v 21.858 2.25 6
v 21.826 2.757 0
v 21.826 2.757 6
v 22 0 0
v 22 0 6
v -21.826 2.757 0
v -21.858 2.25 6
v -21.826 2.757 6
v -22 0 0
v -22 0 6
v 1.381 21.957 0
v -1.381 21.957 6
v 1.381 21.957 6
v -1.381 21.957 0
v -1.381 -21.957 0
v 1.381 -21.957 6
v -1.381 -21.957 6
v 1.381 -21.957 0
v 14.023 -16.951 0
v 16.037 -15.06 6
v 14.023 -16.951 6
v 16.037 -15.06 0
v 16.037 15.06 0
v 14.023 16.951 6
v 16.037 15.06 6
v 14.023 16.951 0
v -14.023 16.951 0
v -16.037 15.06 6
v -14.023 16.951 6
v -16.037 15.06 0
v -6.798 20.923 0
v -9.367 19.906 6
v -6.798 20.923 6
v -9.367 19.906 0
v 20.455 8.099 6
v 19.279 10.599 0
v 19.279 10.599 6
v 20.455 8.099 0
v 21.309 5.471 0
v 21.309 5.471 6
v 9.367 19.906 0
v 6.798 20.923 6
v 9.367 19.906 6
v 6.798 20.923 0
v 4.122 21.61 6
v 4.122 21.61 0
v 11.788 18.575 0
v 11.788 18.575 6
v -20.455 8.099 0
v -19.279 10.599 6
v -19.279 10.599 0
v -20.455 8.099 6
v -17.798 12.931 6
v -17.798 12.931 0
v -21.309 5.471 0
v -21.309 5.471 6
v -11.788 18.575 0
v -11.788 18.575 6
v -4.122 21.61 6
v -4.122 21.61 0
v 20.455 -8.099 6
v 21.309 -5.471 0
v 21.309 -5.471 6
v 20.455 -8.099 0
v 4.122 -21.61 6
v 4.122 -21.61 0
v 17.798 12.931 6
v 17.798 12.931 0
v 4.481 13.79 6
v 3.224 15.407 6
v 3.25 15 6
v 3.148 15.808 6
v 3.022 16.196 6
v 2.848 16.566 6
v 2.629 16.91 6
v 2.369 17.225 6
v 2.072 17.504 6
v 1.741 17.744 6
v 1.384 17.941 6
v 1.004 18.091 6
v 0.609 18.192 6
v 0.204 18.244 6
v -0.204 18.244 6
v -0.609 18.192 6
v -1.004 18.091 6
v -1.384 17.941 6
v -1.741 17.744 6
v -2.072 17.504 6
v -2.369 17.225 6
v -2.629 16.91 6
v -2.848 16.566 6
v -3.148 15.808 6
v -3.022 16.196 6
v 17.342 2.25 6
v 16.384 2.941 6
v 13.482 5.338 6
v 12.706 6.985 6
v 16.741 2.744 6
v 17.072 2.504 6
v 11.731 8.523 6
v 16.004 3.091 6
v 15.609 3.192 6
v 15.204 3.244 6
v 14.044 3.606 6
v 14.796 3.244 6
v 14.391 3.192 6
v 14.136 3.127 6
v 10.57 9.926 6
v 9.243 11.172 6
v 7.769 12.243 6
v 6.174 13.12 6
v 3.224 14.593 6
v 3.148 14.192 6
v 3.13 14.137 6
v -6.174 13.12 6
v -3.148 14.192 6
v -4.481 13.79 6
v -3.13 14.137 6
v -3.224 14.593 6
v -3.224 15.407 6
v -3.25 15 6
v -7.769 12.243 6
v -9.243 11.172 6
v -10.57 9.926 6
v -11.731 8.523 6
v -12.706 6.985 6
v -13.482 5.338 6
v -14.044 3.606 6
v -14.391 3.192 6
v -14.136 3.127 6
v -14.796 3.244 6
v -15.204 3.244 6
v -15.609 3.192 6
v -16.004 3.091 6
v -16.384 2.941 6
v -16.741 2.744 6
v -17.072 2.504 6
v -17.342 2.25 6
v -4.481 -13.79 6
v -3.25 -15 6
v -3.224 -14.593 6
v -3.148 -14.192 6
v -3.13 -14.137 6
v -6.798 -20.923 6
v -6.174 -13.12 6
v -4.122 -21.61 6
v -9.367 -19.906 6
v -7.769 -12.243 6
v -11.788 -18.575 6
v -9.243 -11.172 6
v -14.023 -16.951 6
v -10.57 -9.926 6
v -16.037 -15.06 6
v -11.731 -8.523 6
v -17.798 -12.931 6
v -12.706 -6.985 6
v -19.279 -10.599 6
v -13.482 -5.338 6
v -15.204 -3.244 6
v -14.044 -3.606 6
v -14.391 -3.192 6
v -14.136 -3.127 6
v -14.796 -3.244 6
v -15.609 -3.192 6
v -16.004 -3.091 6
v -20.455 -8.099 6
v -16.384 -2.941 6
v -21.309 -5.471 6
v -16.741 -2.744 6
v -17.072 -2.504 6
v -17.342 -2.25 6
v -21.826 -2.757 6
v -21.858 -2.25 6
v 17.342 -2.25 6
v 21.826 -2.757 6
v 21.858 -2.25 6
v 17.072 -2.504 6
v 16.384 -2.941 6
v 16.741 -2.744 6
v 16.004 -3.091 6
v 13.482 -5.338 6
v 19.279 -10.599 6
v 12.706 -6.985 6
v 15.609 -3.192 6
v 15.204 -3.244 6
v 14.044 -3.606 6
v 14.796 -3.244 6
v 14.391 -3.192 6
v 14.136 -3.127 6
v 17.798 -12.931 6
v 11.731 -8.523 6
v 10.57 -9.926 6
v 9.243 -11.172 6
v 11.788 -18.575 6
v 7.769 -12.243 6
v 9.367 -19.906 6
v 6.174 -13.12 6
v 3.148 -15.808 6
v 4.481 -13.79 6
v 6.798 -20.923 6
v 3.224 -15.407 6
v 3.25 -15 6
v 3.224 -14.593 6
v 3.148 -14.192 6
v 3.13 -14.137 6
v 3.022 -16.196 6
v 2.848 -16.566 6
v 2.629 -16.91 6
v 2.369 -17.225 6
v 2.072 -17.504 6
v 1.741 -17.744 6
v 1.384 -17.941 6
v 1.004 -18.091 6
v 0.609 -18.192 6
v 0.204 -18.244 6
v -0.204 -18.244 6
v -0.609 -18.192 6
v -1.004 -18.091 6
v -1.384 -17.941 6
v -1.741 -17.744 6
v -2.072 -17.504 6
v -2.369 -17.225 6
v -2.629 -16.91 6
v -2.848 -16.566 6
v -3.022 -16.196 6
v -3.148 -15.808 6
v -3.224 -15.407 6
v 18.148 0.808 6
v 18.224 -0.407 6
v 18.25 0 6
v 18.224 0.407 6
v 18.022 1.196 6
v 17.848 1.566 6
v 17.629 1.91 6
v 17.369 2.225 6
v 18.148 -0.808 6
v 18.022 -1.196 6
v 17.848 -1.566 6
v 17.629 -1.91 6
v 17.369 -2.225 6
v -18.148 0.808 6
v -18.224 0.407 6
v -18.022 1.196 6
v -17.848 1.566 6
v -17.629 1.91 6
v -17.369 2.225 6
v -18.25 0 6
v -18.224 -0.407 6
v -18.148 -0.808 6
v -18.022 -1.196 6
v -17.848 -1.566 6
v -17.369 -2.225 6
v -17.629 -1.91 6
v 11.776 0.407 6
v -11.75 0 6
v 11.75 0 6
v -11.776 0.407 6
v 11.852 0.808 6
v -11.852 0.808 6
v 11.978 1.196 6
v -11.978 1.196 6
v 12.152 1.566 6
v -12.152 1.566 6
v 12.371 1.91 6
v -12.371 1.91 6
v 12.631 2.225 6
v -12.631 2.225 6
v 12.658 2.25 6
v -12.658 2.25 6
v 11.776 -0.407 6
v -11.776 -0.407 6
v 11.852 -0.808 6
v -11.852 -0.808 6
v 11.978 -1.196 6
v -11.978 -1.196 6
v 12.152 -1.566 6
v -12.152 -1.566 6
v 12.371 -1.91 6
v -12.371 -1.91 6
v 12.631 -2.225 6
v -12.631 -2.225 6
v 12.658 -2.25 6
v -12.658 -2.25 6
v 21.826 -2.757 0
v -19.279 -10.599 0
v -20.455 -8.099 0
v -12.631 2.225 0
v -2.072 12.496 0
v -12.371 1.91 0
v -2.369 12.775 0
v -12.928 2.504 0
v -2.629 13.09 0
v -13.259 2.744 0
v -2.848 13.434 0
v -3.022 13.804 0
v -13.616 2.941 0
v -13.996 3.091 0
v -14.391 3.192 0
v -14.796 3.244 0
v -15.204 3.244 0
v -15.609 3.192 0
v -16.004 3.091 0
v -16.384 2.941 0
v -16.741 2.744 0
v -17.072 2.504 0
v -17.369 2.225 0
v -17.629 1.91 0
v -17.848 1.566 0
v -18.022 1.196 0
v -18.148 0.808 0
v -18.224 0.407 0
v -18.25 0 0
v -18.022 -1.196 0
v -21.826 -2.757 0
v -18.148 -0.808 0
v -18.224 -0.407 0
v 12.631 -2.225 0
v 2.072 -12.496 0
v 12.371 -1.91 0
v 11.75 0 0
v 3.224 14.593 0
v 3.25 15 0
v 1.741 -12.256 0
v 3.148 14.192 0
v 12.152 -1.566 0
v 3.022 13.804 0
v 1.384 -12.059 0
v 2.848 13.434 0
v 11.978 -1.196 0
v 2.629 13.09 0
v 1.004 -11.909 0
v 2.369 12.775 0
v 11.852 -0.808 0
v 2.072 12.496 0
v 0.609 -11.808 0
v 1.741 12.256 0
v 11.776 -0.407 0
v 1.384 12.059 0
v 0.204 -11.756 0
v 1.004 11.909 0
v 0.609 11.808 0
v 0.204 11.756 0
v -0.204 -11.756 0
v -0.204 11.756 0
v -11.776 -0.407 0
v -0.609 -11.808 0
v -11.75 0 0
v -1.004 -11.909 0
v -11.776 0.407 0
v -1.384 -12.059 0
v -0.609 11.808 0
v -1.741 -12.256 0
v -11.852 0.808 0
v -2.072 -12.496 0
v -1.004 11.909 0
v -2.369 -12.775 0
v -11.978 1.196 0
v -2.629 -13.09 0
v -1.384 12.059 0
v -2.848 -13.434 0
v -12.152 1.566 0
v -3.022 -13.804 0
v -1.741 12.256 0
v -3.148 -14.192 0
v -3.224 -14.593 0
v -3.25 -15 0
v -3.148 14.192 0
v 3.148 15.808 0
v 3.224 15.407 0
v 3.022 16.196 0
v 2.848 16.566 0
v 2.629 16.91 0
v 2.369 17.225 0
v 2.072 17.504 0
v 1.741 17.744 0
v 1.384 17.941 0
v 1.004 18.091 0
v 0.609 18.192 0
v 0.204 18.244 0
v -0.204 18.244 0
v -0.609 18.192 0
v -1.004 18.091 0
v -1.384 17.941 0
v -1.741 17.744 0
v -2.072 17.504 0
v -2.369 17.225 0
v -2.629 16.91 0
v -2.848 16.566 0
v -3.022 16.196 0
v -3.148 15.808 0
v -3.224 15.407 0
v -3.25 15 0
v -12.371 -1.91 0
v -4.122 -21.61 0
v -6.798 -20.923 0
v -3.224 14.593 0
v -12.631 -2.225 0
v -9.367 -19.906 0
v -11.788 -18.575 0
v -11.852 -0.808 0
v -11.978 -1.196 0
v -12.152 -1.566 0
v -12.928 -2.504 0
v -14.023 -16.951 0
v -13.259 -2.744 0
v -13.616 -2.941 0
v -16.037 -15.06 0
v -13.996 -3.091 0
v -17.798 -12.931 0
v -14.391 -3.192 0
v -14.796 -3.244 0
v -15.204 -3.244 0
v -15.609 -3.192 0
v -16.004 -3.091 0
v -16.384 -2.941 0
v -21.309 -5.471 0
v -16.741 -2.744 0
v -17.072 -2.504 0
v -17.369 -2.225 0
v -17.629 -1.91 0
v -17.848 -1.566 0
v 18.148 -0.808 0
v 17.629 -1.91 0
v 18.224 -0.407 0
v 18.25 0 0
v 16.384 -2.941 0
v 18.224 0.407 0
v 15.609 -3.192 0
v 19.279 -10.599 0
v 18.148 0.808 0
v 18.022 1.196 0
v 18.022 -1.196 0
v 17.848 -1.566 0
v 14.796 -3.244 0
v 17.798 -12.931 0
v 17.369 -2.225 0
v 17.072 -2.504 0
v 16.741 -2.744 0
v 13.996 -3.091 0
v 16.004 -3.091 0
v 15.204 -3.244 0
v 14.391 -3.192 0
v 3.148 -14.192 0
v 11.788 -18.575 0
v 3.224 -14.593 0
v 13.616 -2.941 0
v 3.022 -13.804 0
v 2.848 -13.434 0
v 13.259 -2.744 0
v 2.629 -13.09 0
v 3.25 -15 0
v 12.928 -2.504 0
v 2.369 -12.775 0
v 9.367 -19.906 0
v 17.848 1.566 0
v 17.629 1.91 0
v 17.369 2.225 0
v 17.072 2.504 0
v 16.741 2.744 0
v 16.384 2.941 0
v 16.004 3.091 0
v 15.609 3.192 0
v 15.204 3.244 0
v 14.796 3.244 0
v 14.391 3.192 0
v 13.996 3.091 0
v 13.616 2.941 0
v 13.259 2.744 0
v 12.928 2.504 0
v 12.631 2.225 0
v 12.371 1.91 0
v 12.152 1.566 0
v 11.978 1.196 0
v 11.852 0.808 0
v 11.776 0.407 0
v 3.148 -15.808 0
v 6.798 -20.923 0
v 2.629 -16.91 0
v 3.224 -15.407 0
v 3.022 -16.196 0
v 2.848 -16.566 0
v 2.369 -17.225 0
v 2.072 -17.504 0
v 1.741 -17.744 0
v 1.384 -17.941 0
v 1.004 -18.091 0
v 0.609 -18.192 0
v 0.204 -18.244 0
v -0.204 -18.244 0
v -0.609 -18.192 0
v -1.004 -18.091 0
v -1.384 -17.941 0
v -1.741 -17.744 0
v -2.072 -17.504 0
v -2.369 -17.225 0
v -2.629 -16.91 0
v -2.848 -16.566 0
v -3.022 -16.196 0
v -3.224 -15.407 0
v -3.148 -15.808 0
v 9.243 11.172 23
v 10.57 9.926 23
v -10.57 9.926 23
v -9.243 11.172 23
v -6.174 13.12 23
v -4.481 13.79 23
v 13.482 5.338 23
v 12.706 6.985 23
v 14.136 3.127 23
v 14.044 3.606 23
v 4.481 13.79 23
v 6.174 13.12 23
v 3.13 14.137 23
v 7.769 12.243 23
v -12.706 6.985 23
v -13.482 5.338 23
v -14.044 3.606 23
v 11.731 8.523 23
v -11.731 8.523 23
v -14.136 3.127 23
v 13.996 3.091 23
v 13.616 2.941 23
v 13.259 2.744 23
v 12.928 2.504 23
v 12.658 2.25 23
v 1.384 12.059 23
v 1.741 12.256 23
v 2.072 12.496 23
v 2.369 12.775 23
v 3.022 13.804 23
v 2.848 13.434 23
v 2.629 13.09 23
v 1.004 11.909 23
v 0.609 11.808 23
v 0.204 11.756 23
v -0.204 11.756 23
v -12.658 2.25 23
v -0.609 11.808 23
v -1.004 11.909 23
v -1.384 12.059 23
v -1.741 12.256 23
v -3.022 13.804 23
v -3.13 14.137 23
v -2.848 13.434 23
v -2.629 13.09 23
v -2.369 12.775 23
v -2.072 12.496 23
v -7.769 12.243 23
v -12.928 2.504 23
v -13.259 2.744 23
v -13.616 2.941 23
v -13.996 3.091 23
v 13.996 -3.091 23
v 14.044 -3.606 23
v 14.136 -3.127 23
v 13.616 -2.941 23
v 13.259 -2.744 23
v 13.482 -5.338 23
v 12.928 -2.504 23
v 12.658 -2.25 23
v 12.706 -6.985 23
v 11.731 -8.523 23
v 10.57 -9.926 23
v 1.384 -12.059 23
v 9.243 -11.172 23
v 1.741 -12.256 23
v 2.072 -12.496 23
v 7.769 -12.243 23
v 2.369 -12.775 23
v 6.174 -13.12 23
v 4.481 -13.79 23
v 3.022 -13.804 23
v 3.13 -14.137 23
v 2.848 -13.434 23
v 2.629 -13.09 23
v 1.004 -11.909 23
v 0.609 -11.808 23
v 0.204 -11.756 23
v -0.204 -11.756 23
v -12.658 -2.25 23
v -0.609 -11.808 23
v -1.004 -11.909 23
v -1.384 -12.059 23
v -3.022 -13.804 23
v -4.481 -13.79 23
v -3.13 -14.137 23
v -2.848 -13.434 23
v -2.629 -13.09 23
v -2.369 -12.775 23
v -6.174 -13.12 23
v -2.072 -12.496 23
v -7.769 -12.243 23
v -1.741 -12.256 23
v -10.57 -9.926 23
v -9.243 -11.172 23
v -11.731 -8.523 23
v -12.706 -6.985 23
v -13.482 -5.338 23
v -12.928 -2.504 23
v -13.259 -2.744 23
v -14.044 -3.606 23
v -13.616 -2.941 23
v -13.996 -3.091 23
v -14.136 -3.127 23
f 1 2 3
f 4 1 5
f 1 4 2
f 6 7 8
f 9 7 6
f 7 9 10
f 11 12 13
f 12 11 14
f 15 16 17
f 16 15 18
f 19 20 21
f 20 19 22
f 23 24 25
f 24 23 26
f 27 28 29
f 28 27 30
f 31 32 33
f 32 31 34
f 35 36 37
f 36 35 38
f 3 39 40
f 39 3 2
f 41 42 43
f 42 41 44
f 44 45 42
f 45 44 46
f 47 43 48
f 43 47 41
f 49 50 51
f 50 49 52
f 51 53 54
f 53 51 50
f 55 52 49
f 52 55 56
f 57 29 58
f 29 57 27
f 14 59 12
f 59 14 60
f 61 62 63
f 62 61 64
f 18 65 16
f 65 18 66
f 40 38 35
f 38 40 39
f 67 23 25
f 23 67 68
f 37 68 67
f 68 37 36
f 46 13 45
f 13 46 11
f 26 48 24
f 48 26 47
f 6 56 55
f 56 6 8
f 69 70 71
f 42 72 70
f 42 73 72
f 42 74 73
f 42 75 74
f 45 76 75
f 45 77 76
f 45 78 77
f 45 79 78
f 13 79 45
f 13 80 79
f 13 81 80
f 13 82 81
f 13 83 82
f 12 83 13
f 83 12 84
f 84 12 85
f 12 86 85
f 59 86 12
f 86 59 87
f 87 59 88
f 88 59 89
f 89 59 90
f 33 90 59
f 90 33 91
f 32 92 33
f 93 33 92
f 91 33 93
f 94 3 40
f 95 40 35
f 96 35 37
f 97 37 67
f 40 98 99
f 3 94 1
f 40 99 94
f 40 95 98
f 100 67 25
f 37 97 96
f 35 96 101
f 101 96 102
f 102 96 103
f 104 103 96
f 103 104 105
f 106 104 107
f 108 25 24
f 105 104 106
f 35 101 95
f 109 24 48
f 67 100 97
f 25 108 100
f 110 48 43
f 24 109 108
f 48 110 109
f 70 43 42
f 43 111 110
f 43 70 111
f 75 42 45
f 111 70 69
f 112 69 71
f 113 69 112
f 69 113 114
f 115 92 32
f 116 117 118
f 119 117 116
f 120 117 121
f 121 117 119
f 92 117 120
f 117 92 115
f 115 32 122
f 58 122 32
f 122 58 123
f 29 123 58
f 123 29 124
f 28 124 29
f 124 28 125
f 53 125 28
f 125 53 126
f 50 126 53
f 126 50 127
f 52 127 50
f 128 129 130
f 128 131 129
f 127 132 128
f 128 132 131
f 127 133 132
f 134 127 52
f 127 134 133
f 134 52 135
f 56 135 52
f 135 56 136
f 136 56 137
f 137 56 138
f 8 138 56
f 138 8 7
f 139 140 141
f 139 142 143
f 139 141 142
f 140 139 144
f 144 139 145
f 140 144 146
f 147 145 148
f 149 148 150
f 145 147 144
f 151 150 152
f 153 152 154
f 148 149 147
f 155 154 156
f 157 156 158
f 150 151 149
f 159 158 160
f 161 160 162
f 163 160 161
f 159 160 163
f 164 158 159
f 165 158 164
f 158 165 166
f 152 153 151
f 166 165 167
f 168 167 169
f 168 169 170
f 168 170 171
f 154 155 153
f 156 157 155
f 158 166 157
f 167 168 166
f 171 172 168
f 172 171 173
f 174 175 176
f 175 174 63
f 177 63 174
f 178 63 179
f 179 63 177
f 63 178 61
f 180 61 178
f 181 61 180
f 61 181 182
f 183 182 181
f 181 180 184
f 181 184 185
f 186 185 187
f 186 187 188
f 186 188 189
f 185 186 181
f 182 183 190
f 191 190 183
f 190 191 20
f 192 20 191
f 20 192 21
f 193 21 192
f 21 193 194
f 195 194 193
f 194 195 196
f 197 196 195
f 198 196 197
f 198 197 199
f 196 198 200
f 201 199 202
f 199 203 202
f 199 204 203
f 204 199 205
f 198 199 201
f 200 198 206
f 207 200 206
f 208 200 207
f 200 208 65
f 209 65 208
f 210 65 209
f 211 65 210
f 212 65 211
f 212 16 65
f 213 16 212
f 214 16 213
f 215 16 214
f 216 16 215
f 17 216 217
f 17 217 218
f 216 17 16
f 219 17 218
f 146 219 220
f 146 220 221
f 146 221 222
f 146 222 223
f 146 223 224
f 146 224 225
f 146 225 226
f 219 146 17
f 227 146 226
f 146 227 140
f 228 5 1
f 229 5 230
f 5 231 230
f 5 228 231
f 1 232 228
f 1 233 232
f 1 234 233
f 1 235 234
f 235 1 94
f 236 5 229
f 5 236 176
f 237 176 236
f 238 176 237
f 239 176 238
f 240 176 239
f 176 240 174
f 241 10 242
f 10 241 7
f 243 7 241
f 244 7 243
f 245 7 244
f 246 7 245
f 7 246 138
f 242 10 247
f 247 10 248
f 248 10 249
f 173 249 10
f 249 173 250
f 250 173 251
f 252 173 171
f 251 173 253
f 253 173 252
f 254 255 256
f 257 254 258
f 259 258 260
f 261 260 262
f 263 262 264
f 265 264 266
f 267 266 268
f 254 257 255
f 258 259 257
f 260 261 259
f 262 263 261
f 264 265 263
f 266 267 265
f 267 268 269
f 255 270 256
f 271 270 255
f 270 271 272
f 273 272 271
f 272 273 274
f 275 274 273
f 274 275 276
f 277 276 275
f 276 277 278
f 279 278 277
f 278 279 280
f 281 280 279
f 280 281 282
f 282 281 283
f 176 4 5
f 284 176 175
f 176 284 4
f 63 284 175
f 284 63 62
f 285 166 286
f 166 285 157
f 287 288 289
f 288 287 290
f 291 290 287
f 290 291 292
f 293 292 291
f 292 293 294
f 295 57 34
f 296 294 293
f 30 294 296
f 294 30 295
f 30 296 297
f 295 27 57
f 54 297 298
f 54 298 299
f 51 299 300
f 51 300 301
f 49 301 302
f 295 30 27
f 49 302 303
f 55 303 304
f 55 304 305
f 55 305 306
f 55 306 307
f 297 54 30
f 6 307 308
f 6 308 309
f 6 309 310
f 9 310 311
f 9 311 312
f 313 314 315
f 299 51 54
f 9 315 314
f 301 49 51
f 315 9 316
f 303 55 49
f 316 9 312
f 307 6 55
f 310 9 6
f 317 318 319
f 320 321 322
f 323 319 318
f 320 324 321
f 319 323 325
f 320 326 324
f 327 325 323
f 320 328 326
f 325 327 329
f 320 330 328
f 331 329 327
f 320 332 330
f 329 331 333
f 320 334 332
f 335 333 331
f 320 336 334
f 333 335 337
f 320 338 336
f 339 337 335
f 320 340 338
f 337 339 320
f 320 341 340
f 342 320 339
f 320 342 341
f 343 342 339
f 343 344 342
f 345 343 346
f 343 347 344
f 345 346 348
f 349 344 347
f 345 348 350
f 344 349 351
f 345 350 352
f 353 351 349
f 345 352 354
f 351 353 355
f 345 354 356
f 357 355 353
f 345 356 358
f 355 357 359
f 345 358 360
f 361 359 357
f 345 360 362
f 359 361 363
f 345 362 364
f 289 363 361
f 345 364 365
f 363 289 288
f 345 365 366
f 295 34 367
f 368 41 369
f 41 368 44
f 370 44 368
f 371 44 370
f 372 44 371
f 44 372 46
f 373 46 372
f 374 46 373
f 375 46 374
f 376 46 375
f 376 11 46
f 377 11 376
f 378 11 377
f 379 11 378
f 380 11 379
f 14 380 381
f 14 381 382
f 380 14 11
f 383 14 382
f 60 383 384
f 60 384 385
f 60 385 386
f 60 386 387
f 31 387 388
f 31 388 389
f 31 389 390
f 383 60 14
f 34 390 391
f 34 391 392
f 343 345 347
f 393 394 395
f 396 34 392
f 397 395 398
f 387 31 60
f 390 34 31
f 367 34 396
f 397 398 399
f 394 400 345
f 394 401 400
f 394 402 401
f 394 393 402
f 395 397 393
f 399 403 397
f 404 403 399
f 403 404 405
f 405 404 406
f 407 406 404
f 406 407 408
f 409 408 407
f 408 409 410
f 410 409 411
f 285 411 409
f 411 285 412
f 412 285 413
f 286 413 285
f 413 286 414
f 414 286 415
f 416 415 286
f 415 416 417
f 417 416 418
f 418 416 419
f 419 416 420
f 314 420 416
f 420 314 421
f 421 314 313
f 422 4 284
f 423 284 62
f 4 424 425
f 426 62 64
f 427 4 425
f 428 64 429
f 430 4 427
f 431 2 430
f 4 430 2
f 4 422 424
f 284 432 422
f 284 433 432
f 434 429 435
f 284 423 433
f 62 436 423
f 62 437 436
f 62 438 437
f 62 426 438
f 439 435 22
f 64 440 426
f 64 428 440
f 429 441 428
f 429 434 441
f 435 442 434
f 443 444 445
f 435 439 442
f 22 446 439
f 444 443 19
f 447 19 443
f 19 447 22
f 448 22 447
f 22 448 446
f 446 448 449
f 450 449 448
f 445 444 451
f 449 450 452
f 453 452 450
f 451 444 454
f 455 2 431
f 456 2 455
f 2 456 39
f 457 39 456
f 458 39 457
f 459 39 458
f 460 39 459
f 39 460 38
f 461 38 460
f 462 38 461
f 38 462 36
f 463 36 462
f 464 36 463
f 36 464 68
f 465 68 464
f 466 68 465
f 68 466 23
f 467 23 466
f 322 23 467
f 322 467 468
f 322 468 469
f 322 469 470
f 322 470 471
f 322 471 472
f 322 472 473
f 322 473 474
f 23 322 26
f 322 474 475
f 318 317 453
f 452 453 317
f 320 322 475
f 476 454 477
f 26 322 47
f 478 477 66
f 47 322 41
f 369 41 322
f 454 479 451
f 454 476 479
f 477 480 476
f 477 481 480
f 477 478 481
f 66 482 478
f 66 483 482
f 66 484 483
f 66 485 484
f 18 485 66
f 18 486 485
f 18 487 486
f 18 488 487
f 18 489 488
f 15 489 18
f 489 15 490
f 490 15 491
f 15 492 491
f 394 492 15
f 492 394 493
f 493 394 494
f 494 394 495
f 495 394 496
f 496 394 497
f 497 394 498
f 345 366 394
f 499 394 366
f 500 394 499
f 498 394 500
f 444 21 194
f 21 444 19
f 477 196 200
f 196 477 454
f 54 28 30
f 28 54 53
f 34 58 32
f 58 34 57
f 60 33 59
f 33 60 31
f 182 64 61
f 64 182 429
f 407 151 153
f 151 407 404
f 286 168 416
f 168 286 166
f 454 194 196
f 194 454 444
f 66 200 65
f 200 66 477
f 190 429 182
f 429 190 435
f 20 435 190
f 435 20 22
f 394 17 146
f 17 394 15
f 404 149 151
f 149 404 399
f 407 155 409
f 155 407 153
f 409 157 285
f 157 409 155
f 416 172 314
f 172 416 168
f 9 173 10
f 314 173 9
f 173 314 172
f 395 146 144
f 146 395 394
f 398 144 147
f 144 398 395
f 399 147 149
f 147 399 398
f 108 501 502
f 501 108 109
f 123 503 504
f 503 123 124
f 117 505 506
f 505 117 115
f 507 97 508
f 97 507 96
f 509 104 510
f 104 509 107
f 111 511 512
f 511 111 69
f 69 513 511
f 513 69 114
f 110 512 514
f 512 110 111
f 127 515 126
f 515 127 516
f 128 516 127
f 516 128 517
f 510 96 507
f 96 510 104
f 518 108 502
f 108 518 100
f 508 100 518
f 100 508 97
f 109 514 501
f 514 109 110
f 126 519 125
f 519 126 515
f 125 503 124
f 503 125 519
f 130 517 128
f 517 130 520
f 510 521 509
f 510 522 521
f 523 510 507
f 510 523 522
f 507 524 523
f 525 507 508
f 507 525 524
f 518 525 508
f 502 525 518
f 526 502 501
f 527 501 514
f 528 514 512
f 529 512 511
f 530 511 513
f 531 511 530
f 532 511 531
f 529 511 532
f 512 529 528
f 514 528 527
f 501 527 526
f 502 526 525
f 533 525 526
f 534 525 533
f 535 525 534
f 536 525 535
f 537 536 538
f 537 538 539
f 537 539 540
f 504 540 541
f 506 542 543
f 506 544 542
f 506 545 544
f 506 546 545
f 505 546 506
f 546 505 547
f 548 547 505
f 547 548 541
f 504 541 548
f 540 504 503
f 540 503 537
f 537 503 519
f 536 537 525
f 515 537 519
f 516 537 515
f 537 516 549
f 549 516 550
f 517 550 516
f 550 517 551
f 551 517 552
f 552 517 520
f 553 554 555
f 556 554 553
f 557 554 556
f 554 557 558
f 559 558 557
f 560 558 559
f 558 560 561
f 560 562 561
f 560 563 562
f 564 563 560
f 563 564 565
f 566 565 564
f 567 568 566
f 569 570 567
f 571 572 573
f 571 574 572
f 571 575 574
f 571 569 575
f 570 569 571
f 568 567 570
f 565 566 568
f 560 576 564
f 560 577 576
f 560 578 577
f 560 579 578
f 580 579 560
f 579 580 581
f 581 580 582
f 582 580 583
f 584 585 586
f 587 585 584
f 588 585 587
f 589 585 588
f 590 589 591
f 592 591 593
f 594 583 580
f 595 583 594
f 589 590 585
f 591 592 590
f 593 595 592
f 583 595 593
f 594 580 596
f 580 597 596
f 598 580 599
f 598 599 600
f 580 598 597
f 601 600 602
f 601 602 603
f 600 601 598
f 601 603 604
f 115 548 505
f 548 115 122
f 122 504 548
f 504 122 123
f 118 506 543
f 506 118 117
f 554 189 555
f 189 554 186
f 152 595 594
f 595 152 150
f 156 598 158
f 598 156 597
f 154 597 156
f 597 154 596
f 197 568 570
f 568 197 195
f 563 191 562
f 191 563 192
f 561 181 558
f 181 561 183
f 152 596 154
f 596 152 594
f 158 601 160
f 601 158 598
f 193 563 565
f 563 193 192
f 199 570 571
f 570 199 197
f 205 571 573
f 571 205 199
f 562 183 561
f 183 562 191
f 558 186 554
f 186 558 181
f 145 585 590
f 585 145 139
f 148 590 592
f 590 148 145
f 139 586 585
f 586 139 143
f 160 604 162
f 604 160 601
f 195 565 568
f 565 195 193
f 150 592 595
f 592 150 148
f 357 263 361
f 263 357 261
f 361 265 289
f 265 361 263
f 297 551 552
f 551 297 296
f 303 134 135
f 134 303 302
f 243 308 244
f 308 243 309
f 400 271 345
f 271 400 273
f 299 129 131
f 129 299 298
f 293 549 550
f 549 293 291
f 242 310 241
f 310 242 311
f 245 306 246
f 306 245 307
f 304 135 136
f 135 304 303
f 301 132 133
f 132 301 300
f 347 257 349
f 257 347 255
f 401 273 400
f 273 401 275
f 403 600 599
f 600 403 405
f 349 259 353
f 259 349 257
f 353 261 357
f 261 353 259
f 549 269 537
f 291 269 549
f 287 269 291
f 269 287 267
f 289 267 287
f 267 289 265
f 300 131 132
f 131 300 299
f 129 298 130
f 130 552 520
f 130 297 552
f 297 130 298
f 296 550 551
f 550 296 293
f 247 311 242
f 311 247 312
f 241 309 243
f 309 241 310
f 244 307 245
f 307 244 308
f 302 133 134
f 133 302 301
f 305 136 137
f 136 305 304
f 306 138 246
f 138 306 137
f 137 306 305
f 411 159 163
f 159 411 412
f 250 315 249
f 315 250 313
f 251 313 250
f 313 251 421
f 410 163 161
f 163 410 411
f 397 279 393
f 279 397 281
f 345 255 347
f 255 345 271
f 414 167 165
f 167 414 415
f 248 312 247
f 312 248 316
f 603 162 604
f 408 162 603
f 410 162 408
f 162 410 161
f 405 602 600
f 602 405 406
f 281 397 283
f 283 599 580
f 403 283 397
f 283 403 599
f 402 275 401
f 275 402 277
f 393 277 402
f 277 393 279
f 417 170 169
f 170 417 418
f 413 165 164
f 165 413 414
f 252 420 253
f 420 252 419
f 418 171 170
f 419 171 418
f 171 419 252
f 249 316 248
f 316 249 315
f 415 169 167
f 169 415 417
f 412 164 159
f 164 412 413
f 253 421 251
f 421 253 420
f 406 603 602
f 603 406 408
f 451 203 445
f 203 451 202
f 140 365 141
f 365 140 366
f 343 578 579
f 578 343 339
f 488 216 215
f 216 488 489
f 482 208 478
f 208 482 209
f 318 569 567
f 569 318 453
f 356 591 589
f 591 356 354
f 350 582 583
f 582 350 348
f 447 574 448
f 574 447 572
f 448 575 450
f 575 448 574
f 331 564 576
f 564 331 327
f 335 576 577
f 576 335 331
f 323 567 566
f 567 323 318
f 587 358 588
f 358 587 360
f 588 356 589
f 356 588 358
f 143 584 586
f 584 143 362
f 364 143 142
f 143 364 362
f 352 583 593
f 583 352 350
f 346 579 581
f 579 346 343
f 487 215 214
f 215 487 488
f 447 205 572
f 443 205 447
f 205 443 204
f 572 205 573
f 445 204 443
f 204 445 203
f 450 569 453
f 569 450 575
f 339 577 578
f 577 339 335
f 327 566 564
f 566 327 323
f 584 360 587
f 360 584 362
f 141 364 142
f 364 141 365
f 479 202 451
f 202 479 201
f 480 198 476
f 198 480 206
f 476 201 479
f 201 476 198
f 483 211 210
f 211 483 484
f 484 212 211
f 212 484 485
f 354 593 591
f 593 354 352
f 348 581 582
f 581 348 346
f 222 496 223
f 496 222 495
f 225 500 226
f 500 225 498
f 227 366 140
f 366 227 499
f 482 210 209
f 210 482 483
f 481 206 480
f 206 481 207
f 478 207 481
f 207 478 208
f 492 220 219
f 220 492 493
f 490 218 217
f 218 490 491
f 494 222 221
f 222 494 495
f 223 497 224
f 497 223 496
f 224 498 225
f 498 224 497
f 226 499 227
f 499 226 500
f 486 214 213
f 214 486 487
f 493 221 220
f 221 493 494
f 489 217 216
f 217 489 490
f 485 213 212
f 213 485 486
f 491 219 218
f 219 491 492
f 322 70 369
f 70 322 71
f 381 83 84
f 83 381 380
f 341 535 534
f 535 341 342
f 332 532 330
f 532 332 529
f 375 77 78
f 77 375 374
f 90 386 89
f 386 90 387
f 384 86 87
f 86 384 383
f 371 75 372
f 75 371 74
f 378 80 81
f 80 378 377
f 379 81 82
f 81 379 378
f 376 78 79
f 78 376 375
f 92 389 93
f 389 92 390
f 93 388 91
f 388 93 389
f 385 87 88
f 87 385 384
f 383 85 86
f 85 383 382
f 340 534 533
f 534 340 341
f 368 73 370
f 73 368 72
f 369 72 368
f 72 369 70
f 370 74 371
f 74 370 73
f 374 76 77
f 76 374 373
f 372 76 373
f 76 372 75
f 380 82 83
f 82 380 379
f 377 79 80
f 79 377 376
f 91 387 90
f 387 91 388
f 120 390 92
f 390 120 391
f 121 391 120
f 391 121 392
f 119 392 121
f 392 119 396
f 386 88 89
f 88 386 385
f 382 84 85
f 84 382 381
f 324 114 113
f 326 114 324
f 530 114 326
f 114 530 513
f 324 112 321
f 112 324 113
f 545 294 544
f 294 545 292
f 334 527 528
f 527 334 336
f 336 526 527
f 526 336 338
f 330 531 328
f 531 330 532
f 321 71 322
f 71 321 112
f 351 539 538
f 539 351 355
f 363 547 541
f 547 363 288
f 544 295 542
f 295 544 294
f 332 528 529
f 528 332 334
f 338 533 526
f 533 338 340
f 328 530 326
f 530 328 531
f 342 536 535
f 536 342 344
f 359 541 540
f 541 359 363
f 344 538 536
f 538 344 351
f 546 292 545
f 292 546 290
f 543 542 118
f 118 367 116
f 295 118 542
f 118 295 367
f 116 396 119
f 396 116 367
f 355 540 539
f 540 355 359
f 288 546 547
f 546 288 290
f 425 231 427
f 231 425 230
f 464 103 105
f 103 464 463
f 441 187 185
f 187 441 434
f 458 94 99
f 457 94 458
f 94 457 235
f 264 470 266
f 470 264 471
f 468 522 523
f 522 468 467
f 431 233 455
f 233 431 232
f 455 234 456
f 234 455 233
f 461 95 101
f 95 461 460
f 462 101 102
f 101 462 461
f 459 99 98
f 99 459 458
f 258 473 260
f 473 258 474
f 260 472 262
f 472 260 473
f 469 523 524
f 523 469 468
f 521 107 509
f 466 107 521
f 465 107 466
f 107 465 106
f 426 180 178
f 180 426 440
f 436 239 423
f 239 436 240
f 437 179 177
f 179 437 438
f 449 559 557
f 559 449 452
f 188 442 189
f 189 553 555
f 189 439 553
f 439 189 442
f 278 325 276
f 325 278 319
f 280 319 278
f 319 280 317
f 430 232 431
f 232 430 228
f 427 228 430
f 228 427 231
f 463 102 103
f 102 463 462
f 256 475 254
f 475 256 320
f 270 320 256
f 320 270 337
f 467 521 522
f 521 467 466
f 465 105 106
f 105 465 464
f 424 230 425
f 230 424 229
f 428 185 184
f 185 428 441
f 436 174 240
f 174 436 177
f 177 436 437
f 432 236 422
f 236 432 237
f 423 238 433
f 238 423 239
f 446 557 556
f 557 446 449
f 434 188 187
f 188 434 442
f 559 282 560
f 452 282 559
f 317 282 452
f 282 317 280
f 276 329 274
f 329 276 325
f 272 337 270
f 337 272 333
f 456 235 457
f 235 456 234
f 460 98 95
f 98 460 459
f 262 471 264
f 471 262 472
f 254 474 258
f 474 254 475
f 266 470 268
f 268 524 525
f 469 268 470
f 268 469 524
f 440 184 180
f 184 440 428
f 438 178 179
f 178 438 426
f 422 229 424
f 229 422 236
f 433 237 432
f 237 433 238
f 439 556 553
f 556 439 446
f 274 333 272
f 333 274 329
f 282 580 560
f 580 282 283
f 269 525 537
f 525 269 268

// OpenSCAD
$fn = 50;


difference() {
	union() {
		translate(v = [0, 0, 0.0000000000]) {
			rotate(a = [0, 0, 0]) {
				cylinder(h = 6, r = 22.0000000000);
			}
		}
		translate(v = [0, 0, 3.0000000000]) {
			rotate(a = [0, 0, 0]) {
				cylinder(h = 20, r = 14.5000000000);
			}
		}
	}
	union() {
		translate(v = [-15.0000000000, 0.0000000000, -125.0000000000]) {
			rotate(a = [0, 0, 0]) {
				cylinder(h = 250, r = 3.2500000000);
			}
		}
		translate(v = [0.0000000000, -15.0000000000, -125.0000000000]) {
			rotate(a = [0, 0, 0]) {
				cylinder(h = 250, r = 3.2500000000);
			}
		}
		translate(v = [0.0000000000, 15.0000000000, -125.0000000000]) {
			rotate(a = [0, 0, 0]) {
				cylinder(h = 250, r = 3.2500000000);
			}
		}
		translate(v = [15.0000000000, 0.0000000000, -125.0000000000]) {
			rotate(a = [0, 0, 0]) {
				cylinder(h = 250, r = 3.2500000000);
			}
		}
		translate(v = [-27.0000000000, -2.2500000000, 6]) {
			rotate(a = [0, 0, 0]) {
				cube(size = [54, 4.5000000000, 20]);
			}
		}
	}
}
